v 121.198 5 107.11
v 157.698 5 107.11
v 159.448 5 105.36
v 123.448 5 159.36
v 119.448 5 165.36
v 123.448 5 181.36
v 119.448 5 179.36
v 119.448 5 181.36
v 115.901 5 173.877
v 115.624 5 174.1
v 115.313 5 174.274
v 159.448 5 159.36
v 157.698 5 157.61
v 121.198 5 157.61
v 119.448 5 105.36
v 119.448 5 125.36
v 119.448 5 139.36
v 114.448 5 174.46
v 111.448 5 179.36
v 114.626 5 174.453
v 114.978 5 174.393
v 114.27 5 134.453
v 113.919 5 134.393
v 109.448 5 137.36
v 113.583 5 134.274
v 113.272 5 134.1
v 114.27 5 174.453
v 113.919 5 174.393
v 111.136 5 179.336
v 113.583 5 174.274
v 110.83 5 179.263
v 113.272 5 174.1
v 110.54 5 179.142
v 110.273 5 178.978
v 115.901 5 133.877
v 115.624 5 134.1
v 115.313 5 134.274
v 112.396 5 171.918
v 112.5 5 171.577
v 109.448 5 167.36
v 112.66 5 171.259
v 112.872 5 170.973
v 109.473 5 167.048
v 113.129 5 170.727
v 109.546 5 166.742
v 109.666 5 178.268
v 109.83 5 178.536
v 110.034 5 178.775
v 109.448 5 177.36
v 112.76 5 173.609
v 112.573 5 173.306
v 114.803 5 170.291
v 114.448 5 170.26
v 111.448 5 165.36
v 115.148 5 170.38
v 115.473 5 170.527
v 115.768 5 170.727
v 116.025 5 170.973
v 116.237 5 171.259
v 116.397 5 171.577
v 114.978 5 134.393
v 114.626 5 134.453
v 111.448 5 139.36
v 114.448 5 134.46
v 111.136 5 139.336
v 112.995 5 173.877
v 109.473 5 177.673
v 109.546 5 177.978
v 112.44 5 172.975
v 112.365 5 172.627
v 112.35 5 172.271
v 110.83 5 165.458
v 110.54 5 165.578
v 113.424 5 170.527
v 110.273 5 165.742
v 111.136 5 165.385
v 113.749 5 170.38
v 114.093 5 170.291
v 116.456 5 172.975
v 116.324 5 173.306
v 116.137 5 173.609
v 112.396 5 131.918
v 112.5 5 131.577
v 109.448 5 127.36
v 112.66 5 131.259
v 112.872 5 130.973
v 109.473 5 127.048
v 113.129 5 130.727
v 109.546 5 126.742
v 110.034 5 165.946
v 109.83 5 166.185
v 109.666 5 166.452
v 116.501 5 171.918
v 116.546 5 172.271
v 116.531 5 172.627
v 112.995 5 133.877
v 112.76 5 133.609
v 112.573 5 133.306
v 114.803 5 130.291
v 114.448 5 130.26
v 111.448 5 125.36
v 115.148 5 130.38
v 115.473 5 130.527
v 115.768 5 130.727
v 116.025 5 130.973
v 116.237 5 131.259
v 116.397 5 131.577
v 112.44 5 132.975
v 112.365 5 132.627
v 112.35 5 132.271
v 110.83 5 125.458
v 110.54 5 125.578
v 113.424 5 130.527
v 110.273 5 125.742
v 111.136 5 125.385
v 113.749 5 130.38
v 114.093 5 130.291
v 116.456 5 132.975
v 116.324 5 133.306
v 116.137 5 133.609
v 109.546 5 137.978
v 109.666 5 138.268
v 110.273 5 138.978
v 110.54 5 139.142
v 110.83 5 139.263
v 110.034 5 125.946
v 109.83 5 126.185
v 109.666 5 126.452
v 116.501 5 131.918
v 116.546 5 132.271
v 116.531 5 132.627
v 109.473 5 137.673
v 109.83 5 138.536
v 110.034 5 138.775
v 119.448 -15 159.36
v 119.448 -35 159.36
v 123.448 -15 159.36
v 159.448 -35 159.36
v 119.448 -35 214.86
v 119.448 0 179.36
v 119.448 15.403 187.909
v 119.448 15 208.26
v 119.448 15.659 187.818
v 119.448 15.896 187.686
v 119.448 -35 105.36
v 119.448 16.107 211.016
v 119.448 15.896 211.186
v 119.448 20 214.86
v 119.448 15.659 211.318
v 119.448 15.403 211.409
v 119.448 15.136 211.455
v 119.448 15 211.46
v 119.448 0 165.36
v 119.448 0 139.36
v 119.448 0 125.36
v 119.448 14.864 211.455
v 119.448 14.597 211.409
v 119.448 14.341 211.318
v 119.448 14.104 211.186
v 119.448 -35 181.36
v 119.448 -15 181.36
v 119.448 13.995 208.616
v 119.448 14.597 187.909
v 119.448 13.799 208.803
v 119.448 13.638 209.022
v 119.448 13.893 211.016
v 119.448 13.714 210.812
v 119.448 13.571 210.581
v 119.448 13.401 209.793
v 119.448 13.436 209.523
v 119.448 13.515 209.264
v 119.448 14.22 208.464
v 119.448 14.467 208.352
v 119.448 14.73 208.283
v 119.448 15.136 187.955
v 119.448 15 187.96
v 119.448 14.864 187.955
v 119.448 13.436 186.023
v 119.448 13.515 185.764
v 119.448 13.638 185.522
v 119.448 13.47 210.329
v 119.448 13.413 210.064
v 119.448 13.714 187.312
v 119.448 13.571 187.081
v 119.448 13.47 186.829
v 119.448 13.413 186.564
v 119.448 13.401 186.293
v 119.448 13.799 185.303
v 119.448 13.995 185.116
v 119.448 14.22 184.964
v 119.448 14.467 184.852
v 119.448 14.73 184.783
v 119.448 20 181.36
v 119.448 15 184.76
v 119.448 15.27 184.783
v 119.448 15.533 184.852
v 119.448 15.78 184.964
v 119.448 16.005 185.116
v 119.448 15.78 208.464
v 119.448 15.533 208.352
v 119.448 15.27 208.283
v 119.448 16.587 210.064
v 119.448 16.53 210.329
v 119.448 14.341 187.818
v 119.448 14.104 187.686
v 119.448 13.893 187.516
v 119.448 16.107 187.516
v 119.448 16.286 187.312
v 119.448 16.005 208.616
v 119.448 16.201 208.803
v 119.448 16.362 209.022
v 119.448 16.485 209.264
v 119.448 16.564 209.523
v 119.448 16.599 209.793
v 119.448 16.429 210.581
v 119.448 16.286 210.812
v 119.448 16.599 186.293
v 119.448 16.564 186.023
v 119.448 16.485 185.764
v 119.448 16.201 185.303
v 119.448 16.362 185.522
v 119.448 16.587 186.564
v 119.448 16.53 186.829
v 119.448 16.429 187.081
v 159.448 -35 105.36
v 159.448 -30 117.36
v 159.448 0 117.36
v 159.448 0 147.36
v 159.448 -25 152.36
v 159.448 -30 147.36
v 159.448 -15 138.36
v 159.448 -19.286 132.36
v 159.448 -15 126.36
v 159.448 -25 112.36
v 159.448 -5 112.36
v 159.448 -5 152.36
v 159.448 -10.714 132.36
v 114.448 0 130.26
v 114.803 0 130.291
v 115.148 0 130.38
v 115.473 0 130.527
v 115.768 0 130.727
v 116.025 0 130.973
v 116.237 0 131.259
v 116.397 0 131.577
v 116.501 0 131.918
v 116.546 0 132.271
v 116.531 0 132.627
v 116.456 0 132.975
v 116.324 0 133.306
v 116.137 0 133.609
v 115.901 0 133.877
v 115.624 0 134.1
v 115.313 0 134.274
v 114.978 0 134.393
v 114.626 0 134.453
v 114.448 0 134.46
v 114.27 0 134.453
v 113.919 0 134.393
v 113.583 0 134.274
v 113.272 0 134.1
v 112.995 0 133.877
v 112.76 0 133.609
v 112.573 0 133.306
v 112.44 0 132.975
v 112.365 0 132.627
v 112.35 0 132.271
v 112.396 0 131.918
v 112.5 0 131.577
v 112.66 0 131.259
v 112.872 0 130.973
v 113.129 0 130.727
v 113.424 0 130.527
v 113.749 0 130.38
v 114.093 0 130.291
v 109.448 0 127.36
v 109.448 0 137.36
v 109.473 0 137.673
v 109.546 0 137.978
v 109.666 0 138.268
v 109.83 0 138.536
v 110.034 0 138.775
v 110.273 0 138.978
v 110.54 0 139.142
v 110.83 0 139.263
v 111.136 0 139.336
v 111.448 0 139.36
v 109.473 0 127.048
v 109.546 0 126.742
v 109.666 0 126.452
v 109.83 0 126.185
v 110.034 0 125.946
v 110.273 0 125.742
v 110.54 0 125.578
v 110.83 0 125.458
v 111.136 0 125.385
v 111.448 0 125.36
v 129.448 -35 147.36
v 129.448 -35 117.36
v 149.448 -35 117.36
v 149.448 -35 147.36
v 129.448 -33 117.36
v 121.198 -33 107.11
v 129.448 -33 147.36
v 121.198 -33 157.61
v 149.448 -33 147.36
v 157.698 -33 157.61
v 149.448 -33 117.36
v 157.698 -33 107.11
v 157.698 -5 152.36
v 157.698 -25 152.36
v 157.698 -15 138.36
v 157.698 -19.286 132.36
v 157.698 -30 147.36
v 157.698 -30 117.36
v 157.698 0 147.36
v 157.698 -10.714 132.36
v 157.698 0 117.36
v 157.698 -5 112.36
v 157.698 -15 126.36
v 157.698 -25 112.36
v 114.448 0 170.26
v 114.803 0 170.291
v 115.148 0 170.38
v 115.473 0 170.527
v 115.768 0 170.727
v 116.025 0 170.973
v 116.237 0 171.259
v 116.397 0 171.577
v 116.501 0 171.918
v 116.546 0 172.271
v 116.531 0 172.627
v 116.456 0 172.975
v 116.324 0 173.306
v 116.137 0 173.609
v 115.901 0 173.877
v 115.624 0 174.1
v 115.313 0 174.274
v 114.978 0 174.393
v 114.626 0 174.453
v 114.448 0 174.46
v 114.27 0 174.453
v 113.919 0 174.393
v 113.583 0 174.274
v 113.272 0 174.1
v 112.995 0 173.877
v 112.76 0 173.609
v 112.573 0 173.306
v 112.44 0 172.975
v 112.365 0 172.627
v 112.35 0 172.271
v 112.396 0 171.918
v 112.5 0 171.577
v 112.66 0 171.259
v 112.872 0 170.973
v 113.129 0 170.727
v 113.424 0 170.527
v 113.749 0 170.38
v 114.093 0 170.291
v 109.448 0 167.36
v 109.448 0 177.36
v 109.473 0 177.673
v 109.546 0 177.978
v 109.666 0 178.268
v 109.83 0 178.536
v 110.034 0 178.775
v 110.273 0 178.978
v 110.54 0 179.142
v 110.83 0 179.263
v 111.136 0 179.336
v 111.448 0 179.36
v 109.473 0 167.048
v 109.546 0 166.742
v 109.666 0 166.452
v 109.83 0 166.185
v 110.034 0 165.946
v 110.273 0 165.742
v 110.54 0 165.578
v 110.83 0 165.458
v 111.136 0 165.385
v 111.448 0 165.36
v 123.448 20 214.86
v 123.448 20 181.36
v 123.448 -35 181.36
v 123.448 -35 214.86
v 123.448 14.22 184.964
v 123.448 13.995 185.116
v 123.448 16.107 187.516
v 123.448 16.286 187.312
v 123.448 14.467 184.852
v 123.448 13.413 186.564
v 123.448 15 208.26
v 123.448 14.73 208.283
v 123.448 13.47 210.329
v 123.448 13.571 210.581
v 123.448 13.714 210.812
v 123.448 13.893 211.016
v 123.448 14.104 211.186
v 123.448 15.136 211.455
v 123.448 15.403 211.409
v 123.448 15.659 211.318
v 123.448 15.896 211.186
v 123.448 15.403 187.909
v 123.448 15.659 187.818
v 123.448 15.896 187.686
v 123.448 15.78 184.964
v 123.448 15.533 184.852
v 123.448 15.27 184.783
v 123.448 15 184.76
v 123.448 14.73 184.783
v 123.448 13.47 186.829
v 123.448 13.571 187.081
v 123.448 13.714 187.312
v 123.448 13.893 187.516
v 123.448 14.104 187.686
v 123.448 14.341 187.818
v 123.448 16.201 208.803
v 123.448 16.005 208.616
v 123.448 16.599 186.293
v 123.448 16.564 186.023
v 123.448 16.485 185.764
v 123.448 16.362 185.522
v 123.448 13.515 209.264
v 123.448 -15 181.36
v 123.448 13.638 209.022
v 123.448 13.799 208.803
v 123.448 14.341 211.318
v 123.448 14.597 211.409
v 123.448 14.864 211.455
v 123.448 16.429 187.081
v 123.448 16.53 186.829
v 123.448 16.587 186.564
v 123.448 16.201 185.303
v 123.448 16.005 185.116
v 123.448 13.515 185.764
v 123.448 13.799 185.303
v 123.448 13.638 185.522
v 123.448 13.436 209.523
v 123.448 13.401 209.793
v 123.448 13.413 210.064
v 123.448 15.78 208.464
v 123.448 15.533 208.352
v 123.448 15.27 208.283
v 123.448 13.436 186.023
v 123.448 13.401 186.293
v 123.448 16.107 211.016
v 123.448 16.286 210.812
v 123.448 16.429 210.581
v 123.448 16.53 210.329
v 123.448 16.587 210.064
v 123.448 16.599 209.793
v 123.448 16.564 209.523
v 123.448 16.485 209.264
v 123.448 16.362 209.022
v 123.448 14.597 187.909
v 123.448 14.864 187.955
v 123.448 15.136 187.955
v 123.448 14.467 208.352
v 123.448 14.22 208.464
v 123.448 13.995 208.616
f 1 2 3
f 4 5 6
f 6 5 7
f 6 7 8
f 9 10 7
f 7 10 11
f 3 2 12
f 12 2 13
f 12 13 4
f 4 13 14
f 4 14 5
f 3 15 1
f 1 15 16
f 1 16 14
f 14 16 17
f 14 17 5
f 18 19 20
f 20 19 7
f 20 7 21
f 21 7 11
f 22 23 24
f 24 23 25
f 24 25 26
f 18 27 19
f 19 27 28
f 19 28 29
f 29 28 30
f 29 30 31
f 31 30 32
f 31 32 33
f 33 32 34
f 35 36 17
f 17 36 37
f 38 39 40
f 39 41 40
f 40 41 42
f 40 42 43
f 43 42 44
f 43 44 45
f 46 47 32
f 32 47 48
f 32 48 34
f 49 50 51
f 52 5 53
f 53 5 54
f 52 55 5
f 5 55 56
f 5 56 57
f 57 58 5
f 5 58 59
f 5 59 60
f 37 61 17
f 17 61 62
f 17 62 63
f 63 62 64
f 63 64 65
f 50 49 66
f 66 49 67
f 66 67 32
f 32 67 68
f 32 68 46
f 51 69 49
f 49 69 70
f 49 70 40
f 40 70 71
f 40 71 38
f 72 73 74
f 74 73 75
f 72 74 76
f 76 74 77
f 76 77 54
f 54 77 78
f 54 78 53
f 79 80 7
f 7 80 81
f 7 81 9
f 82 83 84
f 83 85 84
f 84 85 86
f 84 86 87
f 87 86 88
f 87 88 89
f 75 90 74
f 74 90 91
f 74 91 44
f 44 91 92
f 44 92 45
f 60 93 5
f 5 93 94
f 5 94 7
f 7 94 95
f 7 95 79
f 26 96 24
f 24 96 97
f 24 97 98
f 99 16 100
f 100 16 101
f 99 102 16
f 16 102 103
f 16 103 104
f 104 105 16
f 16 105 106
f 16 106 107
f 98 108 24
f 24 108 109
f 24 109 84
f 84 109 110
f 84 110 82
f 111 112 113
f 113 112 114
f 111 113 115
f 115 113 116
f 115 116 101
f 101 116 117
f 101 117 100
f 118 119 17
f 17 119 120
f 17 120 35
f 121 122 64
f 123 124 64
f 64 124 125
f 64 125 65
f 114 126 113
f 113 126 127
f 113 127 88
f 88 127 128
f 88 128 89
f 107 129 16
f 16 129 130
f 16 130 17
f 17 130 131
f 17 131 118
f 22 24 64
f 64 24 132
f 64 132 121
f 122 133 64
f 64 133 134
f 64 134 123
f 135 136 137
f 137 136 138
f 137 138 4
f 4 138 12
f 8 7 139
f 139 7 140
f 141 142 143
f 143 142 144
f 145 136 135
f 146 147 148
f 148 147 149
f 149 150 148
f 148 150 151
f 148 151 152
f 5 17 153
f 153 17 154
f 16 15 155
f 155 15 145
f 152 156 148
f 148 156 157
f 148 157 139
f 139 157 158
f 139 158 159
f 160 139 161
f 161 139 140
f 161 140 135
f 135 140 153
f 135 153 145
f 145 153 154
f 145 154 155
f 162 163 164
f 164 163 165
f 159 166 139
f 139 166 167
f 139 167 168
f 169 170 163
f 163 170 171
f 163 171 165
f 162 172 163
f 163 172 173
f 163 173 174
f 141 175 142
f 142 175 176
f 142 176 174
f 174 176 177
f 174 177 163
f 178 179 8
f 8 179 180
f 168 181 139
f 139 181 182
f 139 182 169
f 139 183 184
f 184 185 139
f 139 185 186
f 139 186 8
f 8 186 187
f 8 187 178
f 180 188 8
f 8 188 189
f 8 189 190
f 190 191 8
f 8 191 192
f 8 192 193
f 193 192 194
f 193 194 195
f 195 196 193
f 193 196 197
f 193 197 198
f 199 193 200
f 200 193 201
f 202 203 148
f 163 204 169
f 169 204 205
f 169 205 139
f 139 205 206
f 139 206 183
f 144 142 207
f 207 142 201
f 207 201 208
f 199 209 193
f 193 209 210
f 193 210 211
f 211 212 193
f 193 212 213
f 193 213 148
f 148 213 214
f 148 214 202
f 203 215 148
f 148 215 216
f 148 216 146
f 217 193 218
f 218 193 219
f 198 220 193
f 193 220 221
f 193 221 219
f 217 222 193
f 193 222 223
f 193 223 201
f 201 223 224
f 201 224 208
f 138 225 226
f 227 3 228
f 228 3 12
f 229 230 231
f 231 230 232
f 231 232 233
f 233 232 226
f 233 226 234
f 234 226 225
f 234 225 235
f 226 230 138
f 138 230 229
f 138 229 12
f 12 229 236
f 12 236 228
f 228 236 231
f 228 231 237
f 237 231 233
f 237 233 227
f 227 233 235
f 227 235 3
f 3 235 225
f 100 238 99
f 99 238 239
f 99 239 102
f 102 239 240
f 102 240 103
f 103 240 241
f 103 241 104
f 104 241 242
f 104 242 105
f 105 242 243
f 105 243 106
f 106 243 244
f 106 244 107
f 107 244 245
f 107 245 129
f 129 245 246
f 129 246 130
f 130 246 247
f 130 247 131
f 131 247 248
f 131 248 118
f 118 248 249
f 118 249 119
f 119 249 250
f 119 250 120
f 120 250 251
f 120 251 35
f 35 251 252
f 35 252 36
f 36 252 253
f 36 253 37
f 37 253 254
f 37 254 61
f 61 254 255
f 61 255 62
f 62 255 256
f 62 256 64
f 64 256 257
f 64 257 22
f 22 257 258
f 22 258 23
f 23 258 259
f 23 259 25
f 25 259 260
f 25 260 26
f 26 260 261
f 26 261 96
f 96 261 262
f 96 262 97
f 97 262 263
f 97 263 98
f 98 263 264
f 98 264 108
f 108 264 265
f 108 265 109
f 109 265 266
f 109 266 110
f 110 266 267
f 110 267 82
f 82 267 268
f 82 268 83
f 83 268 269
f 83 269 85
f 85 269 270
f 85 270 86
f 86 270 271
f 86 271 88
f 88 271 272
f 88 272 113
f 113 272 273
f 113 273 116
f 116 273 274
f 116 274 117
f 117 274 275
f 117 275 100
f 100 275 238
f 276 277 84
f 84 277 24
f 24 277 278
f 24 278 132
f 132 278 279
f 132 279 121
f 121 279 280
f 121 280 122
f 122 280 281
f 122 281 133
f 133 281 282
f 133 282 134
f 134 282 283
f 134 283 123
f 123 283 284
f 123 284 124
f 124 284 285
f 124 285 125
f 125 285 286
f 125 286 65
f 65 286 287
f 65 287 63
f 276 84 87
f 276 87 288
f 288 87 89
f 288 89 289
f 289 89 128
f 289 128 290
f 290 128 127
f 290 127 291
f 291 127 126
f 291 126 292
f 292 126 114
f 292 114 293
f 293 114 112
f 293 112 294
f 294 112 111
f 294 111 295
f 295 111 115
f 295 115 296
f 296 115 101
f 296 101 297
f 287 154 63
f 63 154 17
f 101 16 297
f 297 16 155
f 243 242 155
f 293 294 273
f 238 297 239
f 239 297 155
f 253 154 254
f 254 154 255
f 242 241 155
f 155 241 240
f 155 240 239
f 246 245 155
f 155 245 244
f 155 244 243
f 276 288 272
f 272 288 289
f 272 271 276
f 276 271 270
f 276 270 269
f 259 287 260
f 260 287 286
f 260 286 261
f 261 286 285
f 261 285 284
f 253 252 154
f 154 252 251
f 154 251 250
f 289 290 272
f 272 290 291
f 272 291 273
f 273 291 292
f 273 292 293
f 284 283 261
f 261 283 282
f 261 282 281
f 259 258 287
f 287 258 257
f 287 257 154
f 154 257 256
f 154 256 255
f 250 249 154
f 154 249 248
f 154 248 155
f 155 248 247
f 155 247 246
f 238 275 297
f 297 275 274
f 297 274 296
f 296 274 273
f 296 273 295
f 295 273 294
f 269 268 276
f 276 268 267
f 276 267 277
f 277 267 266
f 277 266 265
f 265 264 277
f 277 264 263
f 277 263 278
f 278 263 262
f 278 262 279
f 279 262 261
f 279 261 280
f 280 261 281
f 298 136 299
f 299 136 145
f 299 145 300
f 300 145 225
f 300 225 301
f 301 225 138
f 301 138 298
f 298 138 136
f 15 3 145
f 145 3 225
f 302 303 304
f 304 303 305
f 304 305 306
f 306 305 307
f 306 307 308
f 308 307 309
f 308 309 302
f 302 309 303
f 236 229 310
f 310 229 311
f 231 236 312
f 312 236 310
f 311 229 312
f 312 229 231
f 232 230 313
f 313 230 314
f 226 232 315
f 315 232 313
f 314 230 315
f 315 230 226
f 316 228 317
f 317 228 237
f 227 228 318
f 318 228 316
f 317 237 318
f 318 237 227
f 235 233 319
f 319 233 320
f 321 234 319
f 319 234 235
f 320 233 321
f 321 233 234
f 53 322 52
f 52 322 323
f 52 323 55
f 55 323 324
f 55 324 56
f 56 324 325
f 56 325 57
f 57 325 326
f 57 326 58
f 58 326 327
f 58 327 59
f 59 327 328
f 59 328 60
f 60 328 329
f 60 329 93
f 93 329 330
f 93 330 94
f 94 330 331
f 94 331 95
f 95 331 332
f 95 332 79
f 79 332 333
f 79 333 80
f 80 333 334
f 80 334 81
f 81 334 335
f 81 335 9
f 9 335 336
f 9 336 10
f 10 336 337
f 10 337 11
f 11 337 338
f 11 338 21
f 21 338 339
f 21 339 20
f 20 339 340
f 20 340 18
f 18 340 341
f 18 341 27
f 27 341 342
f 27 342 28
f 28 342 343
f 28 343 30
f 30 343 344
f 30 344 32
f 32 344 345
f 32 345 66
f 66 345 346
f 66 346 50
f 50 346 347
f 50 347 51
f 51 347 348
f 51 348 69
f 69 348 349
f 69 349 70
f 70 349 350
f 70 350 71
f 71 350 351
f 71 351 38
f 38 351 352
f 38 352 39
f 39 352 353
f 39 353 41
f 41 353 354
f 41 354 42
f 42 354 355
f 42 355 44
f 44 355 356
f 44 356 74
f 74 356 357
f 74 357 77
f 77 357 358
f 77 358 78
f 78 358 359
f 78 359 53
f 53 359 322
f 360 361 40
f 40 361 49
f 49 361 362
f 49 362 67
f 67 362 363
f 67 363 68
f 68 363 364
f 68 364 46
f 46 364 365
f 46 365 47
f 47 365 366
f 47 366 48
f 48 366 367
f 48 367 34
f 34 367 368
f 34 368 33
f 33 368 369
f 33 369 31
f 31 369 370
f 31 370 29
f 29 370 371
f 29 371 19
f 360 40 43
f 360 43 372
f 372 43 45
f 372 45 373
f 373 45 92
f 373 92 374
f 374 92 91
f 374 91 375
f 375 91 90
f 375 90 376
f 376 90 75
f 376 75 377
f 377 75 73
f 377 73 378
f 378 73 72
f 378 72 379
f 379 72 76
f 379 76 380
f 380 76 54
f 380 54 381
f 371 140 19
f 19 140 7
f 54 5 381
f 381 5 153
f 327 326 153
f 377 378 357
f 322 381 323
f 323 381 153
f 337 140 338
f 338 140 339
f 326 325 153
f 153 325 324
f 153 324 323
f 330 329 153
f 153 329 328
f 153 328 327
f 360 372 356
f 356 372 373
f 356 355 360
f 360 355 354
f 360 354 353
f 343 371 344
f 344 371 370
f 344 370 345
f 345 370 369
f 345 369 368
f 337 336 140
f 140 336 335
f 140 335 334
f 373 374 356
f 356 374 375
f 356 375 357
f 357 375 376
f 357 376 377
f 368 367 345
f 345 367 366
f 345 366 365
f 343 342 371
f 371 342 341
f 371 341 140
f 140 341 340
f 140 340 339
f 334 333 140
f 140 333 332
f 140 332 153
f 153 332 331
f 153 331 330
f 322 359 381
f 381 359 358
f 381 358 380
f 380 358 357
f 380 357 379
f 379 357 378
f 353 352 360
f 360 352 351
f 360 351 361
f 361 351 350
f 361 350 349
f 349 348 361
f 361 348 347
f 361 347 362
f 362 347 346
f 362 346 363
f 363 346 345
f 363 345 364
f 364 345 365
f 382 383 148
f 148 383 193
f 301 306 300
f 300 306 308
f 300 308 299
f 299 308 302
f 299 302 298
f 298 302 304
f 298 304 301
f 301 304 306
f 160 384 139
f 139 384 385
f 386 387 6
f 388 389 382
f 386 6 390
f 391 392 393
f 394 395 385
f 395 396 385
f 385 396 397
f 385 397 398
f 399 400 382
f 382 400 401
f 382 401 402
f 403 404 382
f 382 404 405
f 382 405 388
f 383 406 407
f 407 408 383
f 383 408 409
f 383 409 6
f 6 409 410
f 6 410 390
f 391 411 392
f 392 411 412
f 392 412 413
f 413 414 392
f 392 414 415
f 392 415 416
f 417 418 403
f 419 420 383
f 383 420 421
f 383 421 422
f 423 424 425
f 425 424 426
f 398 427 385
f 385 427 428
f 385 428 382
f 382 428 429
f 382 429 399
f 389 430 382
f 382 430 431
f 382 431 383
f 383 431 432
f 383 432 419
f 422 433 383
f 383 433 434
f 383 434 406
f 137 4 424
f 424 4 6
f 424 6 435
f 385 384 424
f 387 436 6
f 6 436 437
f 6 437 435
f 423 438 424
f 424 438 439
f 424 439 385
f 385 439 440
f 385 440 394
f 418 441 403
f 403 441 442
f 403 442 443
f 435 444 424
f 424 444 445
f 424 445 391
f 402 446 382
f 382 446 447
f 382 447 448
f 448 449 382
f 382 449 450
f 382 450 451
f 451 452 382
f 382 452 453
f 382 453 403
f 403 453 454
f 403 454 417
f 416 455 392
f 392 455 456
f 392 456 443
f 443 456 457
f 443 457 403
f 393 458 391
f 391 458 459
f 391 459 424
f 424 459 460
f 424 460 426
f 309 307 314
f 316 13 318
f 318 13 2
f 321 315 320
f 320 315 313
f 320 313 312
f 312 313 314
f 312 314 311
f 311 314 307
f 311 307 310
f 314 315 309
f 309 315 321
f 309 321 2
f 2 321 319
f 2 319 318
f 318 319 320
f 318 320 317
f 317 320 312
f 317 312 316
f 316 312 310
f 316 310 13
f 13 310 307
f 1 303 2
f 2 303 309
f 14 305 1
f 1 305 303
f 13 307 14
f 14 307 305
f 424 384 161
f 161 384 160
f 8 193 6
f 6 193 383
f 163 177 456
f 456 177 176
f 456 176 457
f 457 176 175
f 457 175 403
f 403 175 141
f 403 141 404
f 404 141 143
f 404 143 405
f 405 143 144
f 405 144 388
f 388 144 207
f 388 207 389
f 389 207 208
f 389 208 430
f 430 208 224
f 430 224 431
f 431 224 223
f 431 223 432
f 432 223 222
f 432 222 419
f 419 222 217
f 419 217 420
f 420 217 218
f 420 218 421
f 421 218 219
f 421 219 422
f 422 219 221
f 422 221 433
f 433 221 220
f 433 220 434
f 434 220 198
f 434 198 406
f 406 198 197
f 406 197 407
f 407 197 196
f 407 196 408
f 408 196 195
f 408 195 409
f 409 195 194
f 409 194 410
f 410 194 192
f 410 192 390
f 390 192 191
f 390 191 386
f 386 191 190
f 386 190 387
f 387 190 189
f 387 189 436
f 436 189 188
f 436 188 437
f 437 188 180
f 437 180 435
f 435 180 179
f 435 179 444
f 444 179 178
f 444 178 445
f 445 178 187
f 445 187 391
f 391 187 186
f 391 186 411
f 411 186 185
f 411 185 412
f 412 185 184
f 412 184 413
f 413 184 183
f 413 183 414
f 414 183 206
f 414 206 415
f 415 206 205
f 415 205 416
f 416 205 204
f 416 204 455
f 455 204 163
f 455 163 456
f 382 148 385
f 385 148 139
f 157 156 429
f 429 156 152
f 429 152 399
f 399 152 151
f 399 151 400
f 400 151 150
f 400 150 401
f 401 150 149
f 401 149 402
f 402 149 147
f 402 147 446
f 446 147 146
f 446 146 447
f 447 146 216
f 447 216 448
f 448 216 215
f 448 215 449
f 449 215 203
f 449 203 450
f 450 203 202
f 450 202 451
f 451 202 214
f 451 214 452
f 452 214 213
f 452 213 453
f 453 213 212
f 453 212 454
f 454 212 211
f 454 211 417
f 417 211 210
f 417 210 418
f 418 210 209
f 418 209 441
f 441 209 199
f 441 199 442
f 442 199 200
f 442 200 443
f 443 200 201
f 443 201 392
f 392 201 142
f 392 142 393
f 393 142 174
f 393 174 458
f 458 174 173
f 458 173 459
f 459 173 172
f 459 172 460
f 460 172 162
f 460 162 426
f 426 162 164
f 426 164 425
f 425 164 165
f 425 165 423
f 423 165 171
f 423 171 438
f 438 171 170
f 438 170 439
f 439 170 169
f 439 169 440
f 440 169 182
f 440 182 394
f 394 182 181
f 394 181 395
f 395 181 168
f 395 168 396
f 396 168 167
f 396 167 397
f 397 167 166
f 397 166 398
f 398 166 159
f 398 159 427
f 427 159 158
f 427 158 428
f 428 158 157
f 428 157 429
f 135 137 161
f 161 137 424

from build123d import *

# Parameters (mm, degrees)
SKETCH2_W             = 10
SKETCH2_H             = 14
SKETCH2_R             = 2.1
BOSS_EXTRUDE1_DEPTH   = 5
BOSS_EXTRUDE1_2_DEPTH = 5
SKETCH3_W             = 44.5
SKETCH3_H             = 39
SKETCH3_W_2           = 14
SKETCH3_H_2           = 5
BOSS_EXTRUDE2_DEPTH   = 2
BOSS_EXTRUDE4_DEPTH   = 32
SKETCH5_W             = 2
SKETCH5_H             = 85
BOSS_EXTRUDE5_DEPTH   = 37
SKETCH6_W             = 14
SKETCH6_H             = 30
CUT_EXTRUDE1_DEPTH    = 200
SKETCH7_W             = 20
SKETCH7_H             = 20
CUT_EXTRUDE2_DEPTH    = 16
FILLET1_R             = 2
SKETCH8_W             = 95.919235743
SKETCH8_H             = 46.663411984
CUT_EXTRUDE4_DEPTH    = 34
SKETCH9_W             = 7
SKETCH9_H             = 5
BOSS_EXTRUDE6_DEPTH   = 2
BOSS_EXTRUDE9_DEPTH   = 36
BOSS_EXTRUDE9_2_DEPTH = 36
SKETCH12_W            = 50
SKETCH12_H            = 2
CUT_EXTRUDE5_DEPTH    = 36
SKETCH13_W            = 50
SKETCH13_H            = 2
BOSS_EXTRUDE11_DEPTH  = 36
BOSS_EXTRUDE12_DEPTH  = 2
SKETCH15_W            = 54
SKETCH15_H            = 40
BOSS_EXTRUDE13_DEPTH  = 2
CUT_EXTRUDE6_DEPTH    = 2
SKETCH17_W            = 55
SKETCH17_H            = 37
BOSS_EXTRUDE14_DEPTH  = 4
SKETCH18_R            = 1.6
CUT_EXTRUDE7_DEPTH    = 11
SKETCH19_R            = 1.6
BOSS_EXTRUDE15_DEPTH  = 4
SKETCH20_R            = 3.6
CUT_EXTRUDE8_DEPTH    = 2.2
SKETCH21_W            = 56.91688516
SKETCH21_H            = 39.408005253
CUT_EXTRUDE9_DEPTH    = 4
SKETCH22_W            = 37.5
SKETCH22_H            = 27.5
SKETCH22_R            = 1.6
BOSS_EXTRUDE16_DEPTH  = 2
SKETCH23_W            = 30
SKETCH23_H            = 12.5
BOSS_EXTRUDE17_DEPTH  = 2
SKETCH25_W            = 20
SKETCH25_H            = 30
CUT_EXTRUDE10_DEPTH   = 15
SKETCH26_R            = 1.6
SKETCH26_W            = 37.5
SKETCH26_H            = 27.5
BOSS_EXTRUDE18_DEPTH  = 2
SKETCH27_W            = 37.5
SKETCH27_H            = 27.5
BOSS_EXTRUDE19_DEPTH  = 2
SKETCH28_W            = 36.5
SKETCH28_H            = 50.5
CUT_EXTRUDE11_DEPTH   = 38
SKETCH29_W            = 33.5
SKETCH29_H            = 55
SKETCH29_R            = 1.6
BOSS_EXTRUDE20_DEPTH  = 4
SKETCH30_W            = 12
SKETCH30_H            = 55
CUT_EXTRUDE12_DEPTH   = 4
SKETCH31_R            = 1.6
CUT_EXTRUDE13_DEPTH   = 4
SKETCH32_W            = 22
SKETCH32_H            = 20
BOSS_EXTRUDE21_DEPTH  = 4


with BuildPart() as part:
    # Sketch2 → Boss-Extrude1 (new body)
    with BuildSketch(Plane(origin=(0, 0, 0), x_dir=(1, 0, 0), z_dir=(0, 1, 0))):
        with Locations((114.448385229, -132.360414745)):
            Rectangle(SKETCH2_W, SKETCH2_H)
        with Locations((114.448385229, -132.360414745)):
            Circle(SKETCH2_R, mode=Mode.SUBTRACT)
    extrude(amount=BOSS_EXTRUDE1_DEPTH)



with BuildPart() as body_2:
    # Sketch2 → Boss-Extrude1 2 (new body)
    with BuildSketch(Plane(origin=(0, 0, 0), x_dir=(1, 0, 0), z_dir=(0, 1, 0))):
        with Locations((114.448385229, -172.360414745)):
            Rectangle(SKETCH2_W, SKETCH2_H)
        with Locations((114.448385229, -172.360414745)):
            Circle(SKETCH2_R, mode=Mode.SUBTRACT)
    extrude(amount=BOSS_EXTRUDE1_2_DEPTH)


with BuildPart() as part_1:
    add(part.part)

    add(body_2.part)  # Boss-Extrude2 merges body 2
    # Sketch3 → Boss-Extrude2 (add)
    with BuildSketch(Plane(origin=(119.448385229, 0, 0), x_dir=(0, 0, -1), z_dir=(1, 0, 0))):
        Polygon((-152.360414745, -34), (-152.360414745, 5), (-165.360414745, 5), (-165.360414745, 0), (-179.360414745, 0), (-179.360414745, 5), (-196.860414745, 5), (-196.860414745, -34), align=None)
        with Locations((-130.110414745, -14.5)):
            Rectangle(SKETCH3_W, SKETCH3_H)
        with Locations((-172.360414745, 2.5)):
            Rectangle(SKETCH3_W_2, SKETCH3_H_2)
    extrude(amount=BOSS_EXTRUDE2_DEPTH)

    # Sketch4 → Boss-Extrude4 (add)
    with BuildSketch(Plane(origin=(121.448385229, 0, 0), x_dir=(0, 0, -1), z_dir=(1, 0, 0))):
        Polygon((-194.860414745, 5), (-196.860414745, 5), (-196.860414745, -34), (-107.860414745, -34), (-107.860414745, 5), (-109.860414745, 5), (-109.860414745, -32), (-194.860414745, -32), align=None)
    extrude(amount=BOSS_EXTRUDE4_DEPTH)

    # Sketch5 → Boss-Extrude5 (add)
    with BuildSketch(Plane(origin=(0, -32, 0), x_dir=(1, 0, 0), z_dir=(0, 1, 0))):
        with Locations((152.448385229, -152.360414745)):
            Rectangle(SKETCH5_W, SKETCH5_H)
    extrude(amount=BOSS_EXTRUDE5_DEPTH)

    # Sketch6 → Cut-Extrude1 (cut)
    with BuildSketch(Plane.XY.offset(196.860414745)):
        with Locations((136.448385229, -10)):
            Rectangle(SKETCH6_W, SKETCH6_H)
    extrude(amount=-CUT_EXTRUDE1_DEPTH, mode=Mode.SUBTRACT)

    # Sketch7 → Cut-Extrude2 (cut)
    with BuildSketch(Plane(origin=(153.448385229, 0, 0), x_dir=(0, 0, -1), z_dir=(1, 0, 0))):
        with Locations((-179.360414745, -14.5)):
            Rectangle(SKETCH7_W, SKETCH7_H)
        with Locations((-152.360414745, -14.5)):
            Rectangle(SKETCH7_W, SKETCH7_H)
        with Locations((-125.360414745, -14.5)):
            Rectangle(SKETCH7_W, SKETCH7_H)
    extrude(amount=-CUT_EXTRUDE2_DEPTH, mode=Mode.SUBTRACT)

    # Fillet1
    fillet1_edges = [part_1.edges().sort_by_distance(p)[0] for p in [
        (109.448385229, 2.5, 139.360414745),
        (109.448385229, 2.5, 125.360414745),
        (109.448385229, 2.5, 179.360414745),
        (109.448385229, 2.5, 165.360414745),
    ]]
    fillet(fillet1_edges, radius=FILLET1_R)

    # Sketch8 → Cut-Extrude4 (cut)
    with BuildSketch(Plane(origin=(153.448385229, 0, 0), x_dir=(0, 0, -1), z_dir=(1, 0, 0))):
        with Locations((-152.759247327, -15.092668453)):
            Rectangle(SKETCH8_W, SKETCH8_H)
    extrude(amount=-CUT_EXTRUDE4_DEPTH, mode=Mode.SUBTRACT)

    # Sketch9 → Boss-Extrude6 (add)
    with BuildSketch(Plane(origin=(119.448385229, 0, 0), x_dir=(0, 0, -1), z_dir=(1, 0, 0))):
        Polygon((-132.360414745, 0), (-132.360414745, -35), (-107.360414745, -35), (-107.360414745, 5), (-125.360414745, 5), (-125.360414745, 0), align=None)
        Polygon((-157.360414745, 5), (-157.360414745, -35), (-132.360414745, -35), (-132.360414745, 0), (-139.360414745, 0), (-139.360414745, 5), align=None)
        with Locations((-135.860414745, 2.5)):
            Rectangle(SKETCH9_W, SKETCH9_H)
        with Locations((-128.860414745, 2.5)):
            Rectangle(SKETCH9_W, SKETCH9_H)
    extrude(amount=BOSS_EXTRUDE6_DEPTH)

    # Sketch12 → Cut-Extrude5 (cut)
    with BuildSketch(Plane(origin=(121.448385229, 0, 0), x_dir=(0, 0, -1), z_dir=(1, 0, 0))):
        with Locations((-132.360414745, -34)):
            Rectangle(SKETCH12_W, SKETCH12_H)
    extrude(amount=-CUT_EXTRUDE5_DEPTH, mode=Mode.SUBTRACT)



with BuildPart() as body_2_2:
    # Sketch11 → Boss-Extrude9 (new body)
    with BuildSketch(Plane(origin=(121.448385229, 0, 0), x_dir=(0, 0, -1), z_dir=(1, 0, 0))):
        Polygon((-157.360414745, -33), (-157.360414745, 5), (-159.360414745, 5), (-159.360414745, -35), (-157.360414745, -35), align=None)
    extrude(amount=BOSS_EXTRUDE9_DEPTH)



with BuildPart() as body_3:
    # Sketch11 → Boss-Extrude9 2 (new body)
    with BuildSketch(Plane(origin=(121.448385229, 0, 0), x_dir=(0, 0, -1), z_dir=(1, 0, 0))):
        Polygon((-107.360414745, 5), (-107.360414745, -33), (-107.360414745, -35), (-105.360414745, -35), (-105.360414745, 5), align=None)
    extrude(amount=BOSS_EXTRUDE9_2_DEPTH)


with BuildPart() as body_2_2_1:
    add(body_2_2.part)

    add(body_3.part)  # Boss-Extrude11 merges body 3
    # Sketch13 → Boss-Extrude11 (add)
    with BuildSketch(Plane(origin=(121.448385229, 0, 0), x_dir=(0, 0, -1), z_dir=(1, 0, 0))):
        with Locations((-132.360414745, -34)):
            Rectangle(SKETCH13_W, SKETCH13_H)
    extrude(amount=BOSS_EXTRUDE11_DEPTH)


with BuildPart() as part_2:
    add(part_1.part)

    add(body_2_2_1.part)  # Boss-Extrude12 merges body 2 2
    # Sketch14 → Boss-Extrude12 (add)
    with BuildSketch(Plane.ZY.offset(-121.448385229)):
        Polygon((107.360414745, 5), (105.360414745, 5), (105.360414745, -35), (159.360414745, -35), (159.360414745, 5), (157.360414745, 5), (157.360414745, -33), (107.360414745, -33), align=None)
    extrude(amount=BOSS_EXTRUDE12_DEPTH)

    # Sketch15 → Boss-Extrude13 (add)
    with BuildSketch(Plane(origin=(157.448385229, 0, 0), x_dir=(0, 0, -1), z_dir=(1, 0, 0))):
        with Locations((-132.360414745, -15)):
            Rectangle(SKETCH15_W, SKETCH15_H)
    extrude(amount=BOSS_EXTRUDE13_DEPTH)

    # Sketch16 → Cut-Extrude6 (cut)
    with BuildSketch(Plane(origin=(159.448385229, 0, 0), x_dir=(0, 0, -1), z_dir=(1, 0, 0))):
        Polygon((-138.360414745, -15), (-152.360414745, -5), (-152.360414745, -25), align=None)
        Polygon((-147.360414745, 0), (-132.360414745, -10.714285714), (-117.360414745, 0), align=None)
        Polygon((-112.360414745, -5), (-126.360414745, -15), (-112.360414745, -25), align=None)
        Polygon((-117.360414745, -30), (-132.360414745, -19.285714286), (-147.360414745, -30), align=None)
    extrude(amount=-CUT_EXTRUDE6_DEPTH, mode=Mode.SUBTRACT)

    # Sketch17 → Boss-Extrude14 (add)
    with BuildSketch(Plane(origin=(119.448385229, 0, 0), x_dir=(0, 0, -1), z_dir=(1, 0, 0))):
        with Locations((-186.860414745, -13.5)):
            Rectangle(SKETCH17_W, SKETCH17_H)
    extrude(amount=BOSS_EXTRUDE14_DEPTH)

    # Sketch18 → Cut-Extrude7 (cut)
    with BuildSketch(Plane(origin=(123.448385229, 0, 0), x_dir=(0, 0, -1), z_dir=(1, 0, 0))):
        with Locations((-209.360414745, -1.75)):
            Circle(SKETCH18_R)
        with Locations((-209.360414745, -25.25)):
            Circle(SKETCH18_R)
        with Locations((-164.360414745, -25.25)):
            Circle(SKETCH18_R)
        with Locations((-164.360414745, -1.75)):
            Circle(SKETCH18_R)
    extrude(amount=-CUT_EXTRUDE7_DEPTH, mode=Mode.SUBTRACT)

    # Sketch19 → Boss-Extrude15 (add)
    with BuildSketch(Plane.ZY.offset(-119.448385229)):
        with Locations((164.360414745, -1.75)):
            Circle(SKETCH19_R)
    extrude(amount=-BOSS_EXTRUDE15_DEPTH)

    # Sketch20 → Cut-Extrude8 (cut)
    with BuildSketch(Plane.ZY.offset(-119.448385229)):
        with Locations((209.360414745, -1.75)):
            Circle(SKETCH20_R)
        with Locations((209.360414745, -25.25)):
            Circle(SKETCH20_R)
        with Locations((164.360414745, -25.25)):
            Circle(SKETCH20_R)
    extrude(amount=-CUT_EXTRUDE8_DEPTH, mode=Mode.SUBTRACT)

    # Sketch21 → Cut-Extrude9 (cut)
    with BuildSketch(Plane(origin=(123.448385229, 0, 0), x_dir=(0, 0, -1), z_dir=(1, 0, 0))):
        with Locations((-187.818857325, -12.295997374)):
            Rectangle(SKETCH21_W, SKETCH21_H)
    extrude(amount=-CUT_EXTRUDE9_DEPTH, mode=Mode.SUBTRACT)



with BuildPart() as body_2_3:
    # Sketch22 → Boss-Extrude16 (new body)
    with BuildSketch(Plane(origin=(119.448385229, 0, 0), x_dir=(0, 0, -1), z_dir=(1, 0, 0))):
        with Locations((-208.110414745, 6.25)):
            Rectangle(SKETCH22_W, SKETCH22_H)
        with Locations((-219.860414745, 15)):
            Circle(SKETCH22_R, mode=Mode.SUBTRACT)
        with Locations((-196.360414745, 15)):
            Circle(SKETCH22_R, mode=Mode.SUBTRACT)
    extrude(amount=BOSS_EXTRUDE16_DEPTH)


with BuildPart() as part_3:
    add(part_2.part)

    add(body_2_3.part)  # Boss-Extrude17 merges body 2 3
    # Sketch23 → Boss-Extrude17 (add)
    with BuildSketch(Plane(origin=(119.448385229, 0, 0), x_dir=(0, 0, -1), z_dir=(1, 0, 0))):
        with Locations((-174.360414745, -1.25)):
            Rectangle(SKETCH23_W, SKETCH23_H)
    extrude(amount=BOSS_EXTRUDE17_DEPTH)

    # Sketch25 → Cut-Extrude10 (cut)
    with BuildSketch(Plane(origin=(0, -35, 0), x_dir=(-1, 0, 0), z_dir=(0, -1, 0))):
        with Locations((-139.448385229, -132.360414745)):
            Rectangle(SKETCH25_W, SKETCH25_H)
    extrude(amount=-CUT_EXTRUDE10_DEPTH, mode=Mode.SUBTRACT)

    # Sketch26 → Boss-Extrude18 (add)
    with BuildSketch(Plane(origin=(121.448385229, 0, 0), x_dir=(0, 0, -1), z_dir=(1, 0, 0))):
        Polygon((-226.860414745, -7.5), (-159.360414745, -7.5), (-159.360414745, 5), (-189.360414745, 5), (-189.360414745, 20), (-226.860414745, 20), align=None)
        with Locations((-219.860414745, 15)):
            Circle(SKETCH26_R, mode=Mode.SUBTRACT)
        with Locations((-196.360414745, 15)):
            Circle(SKETCH26_R, mode=Mode.SUBTRACT)
        with Locations((-208.110414745, -21.25)):
            Rectangle(SKETCH26_W, SKETCH26_H)
    extrude(amount=BOSS_EXTRUDE18_DEPTH)

    # Sketch27 → Boss-Extrude19 (add)
    with BuildSketch(Plane.ZY.offset(-121.448385229)):
        with Locations((208.110414745, -21.25)):
            Rectangle(SKETCH27_W, SKETCH27_H)
    extrude(amount=BOSS_EXTRUDE19_DEPTH)

    # Sketch28 → Cut-Extrude11 (cut)
    with BuildSketch(Plane(origin=(0, 5, 0), x_dir=(1, 0, 0), z_dir=(0, 1, 0))):
        with Locations((139.448385229, -132.360414745)):
            Rectangle(SKETCH28_W, SKETCH28_H)
    extrude(amount=-CUT_EXTRUDE11_DEPTH, mode=Mode.SUBTRACT)

    # Sketch29 → Boss-Extrude20 (add)
    with BuildSketch(Plane(origin=(123.448385229, 0, 0), x_dir=(0, 0, -1), z_dir=(1, 0, 0))):
        with Locations((-198.110414745, -7.5)):
            Rectangle(SKETCH29_W, SKETCH29_H)
        with Locations((-186.360414745, 15)):
            Circle(SKETCH29_R, mode=Mode.SUBTRACT)
        with Locations((-209.860414745, 15)):
            Circle(SKETCH29_R, mode=Mode.SUBTRACT)
    extrude(amount=-BOSS_EXTRUDE20_DEPTH)

    # Sketch30 → Cut-Extrude12 (cut)
    with BuildSketch(Plane(origin=(123.448385229, 0, 0), x_dir=(0, 0, -1), z_dir=(1, 0, 0))):
        with Locations((-220.860414745, -7.5)):
            Rectangle(SKETCH30_W, SKETCH30_H)
    extrude(amount=-CUT_EXTRUDE12_DEPTH, mode=Mode.SUBTRACT)

    # Sketch31 → Cut-Extrude13 (cut)
    with BuildSketch(Plane(origin=(123.448385229, 0, 0), x_dir=(0, 0, -1), z_dir=(1, 0, 0))):
        with Locations((-209.860414745, 15)):
            Circle(SKETCH31_R)
    extrude(amount=-CUT_EXTRUDE13_DEPTH, mode=Mode.SUBTRACT)

    # Sketch32 → Boss-Extrude21 (add)
    with BuildSketch(Plane(origin=(123.448385229, 0, 0), x_dir=(0, 0, -1), z_dir=(1, 0, 0))):
        with Locations((-170.360414745, -5)):
            Rectangle(SKETCH32_W, SKETCH32_H)
    extrude(amount=-BOSS_EXTRUDE21_DEPTH)


solid = part_3.part
